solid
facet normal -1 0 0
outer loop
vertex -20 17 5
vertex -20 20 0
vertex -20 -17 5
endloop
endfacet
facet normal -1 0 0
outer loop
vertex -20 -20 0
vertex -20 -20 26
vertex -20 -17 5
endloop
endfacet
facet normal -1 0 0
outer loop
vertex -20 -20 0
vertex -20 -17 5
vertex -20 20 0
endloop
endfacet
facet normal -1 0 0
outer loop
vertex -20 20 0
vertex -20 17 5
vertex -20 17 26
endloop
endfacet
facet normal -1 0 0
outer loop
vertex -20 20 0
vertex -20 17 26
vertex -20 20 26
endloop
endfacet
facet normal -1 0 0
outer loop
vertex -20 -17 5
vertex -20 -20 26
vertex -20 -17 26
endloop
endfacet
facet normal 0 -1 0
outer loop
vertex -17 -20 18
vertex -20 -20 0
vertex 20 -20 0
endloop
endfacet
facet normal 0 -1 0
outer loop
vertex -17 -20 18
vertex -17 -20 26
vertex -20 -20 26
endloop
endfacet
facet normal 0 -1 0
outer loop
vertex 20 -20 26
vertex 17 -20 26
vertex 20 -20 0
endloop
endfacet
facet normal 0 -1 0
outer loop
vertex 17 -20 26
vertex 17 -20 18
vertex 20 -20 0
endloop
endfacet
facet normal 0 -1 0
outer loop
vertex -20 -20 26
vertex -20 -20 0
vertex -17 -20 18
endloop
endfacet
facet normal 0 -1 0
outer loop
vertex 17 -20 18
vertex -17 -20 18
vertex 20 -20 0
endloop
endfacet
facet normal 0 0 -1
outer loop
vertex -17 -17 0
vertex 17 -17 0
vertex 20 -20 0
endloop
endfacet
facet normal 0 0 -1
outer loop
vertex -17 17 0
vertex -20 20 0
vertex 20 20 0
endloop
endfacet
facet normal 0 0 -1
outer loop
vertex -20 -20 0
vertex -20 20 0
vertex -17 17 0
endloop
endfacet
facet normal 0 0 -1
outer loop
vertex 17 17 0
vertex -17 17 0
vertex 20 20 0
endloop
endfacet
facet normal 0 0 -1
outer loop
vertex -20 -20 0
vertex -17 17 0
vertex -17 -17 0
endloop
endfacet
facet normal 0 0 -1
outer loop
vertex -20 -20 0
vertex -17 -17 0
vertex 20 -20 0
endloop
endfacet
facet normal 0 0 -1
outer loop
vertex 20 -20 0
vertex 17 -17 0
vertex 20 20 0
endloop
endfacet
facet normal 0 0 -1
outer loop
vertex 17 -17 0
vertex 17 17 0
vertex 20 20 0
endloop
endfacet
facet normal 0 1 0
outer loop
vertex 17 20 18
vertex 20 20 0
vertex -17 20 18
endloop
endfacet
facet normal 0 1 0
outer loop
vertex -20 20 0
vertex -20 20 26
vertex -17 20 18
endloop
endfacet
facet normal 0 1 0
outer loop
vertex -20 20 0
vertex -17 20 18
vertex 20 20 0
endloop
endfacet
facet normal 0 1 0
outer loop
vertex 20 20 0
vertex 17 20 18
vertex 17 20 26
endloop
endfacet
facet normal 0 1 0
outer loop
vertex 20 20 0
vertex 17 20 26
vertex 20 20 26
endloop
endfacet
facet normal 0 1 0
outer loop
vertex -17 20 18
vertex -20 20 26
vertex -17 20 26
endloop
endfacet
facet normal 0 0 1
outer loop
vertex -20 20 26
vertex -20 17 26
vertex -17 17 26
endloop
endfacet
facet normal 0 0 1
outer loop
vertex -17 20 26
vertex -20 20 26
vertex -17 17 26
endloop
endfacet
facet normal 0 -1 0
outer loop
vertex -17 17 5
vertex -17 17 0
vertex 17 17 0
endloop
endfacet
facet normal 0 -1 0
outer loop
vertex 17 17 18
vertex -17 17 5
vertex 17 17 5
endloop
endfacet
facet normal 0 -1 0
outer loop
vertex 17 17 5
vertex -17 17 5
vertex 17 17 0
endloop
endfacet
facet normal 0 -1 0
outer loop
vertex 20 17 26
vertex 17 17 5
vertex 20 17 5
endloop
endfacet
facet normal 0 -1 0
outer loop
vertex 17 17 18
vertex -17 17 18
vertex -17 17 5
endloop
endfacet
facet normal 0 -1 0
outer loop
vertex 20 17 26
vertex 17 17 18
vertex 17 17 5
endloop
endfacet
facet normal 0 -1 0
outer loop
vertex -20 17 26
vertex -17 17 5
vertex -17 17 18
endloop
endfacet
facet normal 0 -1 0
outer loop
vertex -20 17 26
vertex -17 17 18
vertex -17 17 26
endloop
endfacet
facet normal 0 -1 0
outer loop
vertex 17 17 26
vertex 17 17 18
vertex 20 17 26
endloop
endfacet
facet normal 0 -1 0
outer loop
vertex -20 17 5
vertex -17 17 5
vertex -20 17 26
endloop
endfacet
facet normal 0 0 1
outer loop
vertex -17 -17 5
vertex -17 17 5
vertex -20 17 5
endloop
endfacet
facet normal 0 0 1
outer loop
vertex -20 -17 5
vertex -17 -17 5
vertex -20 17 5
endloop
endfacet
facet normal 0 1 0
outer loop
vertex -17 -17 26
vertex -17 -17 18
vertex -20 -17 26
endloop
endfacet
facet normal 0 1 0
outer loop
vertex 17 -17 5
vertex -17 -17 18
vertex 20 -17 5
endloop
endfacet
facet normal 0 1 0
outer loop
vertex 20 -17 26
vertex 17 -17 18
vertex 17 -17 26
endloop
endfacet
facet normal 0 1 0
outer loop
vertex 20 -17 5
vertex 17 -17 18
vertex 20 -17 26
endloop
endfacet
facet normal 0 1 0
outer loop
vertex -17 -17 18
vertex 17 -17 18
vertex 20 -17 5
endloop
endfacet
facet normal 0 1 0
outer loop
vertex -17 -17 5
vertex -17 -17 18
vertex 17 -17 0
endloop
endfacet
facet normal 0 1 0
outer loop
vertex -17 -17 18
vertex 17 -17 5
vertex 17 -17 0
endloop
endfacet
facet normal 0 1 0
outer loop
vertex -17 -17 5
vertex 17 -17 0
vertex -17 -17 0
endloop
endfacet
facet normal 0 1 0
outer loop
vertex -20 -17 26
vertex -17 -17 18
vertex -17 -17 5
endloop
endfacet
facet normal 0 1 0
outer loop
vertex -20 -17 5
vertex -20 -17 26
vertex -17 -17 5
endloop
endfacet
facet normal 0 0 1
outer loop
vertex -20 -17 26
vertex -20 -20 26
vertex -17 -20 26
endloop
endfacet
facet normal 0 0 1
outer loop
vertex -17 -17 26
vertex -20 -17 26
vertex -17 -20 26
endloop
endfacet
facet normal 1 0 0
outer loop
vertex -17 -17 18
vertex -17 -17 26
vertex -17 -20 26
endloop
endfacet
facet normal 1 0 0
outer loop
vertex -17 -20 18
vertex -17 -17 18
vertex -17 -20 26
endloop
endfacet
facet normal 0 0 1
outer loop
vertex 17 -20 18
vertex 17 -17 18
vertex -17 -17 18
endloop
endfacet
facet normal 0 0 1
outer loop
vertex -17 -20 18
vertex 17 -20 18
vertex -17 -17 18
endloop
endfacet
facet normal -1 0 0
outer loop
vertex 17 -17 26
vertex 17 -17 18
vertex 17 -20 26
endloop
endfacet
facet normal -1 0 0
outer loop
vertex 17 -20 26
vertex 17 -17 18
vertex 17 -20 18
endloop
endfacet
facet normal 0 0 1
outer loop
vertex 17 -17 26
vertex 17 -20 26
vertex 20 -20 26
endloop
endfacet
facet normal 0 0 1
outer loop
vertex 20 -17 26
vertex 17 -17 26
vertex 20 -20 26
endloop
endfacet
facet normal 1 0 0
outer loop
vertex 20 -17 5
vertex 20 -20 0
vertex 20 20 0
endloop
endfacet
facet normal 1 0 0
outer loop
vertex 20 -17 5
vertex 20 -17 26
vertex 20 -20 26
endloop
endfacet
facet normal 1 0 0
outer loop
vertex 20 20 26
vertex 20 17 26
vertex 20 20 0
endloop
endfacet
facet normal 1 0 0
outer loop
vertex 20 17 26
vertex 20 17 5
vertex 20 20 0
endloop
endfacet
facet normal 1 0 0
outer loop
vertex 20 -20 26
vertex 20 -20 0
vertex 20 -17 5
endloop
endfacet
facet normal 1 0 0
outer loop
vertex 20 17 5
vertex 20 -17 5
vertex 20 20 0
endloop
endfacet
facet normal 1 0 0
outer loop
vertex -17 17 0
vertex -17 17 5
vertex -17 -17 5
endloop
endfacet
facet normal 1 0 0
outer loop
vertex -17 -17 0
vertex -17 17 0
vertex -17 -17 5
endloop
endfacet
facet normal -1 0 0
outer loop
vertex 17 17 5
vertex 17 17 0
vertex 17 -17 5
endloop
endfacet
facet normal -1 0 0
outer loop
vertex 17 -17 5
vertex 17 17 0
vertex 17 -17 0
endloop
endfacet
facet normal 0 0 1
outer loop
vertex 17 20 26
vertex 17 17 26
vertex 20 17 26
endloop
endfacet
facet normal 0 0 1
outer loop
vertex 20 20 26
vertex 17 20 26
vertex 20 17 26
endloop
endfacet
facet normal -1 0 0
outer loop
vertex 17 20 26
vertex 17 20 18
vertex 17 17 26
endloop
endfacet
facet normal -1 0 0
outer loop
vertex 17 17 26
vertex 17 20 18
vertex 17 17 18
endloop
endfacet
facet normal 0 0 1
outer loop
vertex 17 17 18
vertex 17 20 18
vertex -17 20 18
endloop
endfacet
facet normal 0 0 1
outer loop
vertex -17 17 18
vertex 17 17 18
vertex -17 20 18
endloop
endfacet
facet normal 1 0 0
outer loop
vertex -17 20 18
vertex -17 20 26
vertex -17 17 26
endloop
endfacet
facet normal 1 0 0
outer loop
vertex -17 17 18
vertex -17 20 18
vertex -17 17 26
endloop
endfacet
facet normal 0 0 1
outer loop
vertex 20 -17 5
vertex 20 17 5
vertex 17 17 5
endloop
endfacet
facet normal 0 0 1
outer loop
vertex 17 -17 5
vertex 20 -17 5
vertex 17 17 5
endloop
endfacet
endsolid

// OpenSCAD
difference() {
	translate([-20,-20,0]) cube([40,40,26]);
	translate([-17,-17,-5]) cube([34,34,30]);
	translate([-17,-21,18]) cube([34,42,9]);
	translate([-21,-17,5]) cube([42,34,22]);
}
